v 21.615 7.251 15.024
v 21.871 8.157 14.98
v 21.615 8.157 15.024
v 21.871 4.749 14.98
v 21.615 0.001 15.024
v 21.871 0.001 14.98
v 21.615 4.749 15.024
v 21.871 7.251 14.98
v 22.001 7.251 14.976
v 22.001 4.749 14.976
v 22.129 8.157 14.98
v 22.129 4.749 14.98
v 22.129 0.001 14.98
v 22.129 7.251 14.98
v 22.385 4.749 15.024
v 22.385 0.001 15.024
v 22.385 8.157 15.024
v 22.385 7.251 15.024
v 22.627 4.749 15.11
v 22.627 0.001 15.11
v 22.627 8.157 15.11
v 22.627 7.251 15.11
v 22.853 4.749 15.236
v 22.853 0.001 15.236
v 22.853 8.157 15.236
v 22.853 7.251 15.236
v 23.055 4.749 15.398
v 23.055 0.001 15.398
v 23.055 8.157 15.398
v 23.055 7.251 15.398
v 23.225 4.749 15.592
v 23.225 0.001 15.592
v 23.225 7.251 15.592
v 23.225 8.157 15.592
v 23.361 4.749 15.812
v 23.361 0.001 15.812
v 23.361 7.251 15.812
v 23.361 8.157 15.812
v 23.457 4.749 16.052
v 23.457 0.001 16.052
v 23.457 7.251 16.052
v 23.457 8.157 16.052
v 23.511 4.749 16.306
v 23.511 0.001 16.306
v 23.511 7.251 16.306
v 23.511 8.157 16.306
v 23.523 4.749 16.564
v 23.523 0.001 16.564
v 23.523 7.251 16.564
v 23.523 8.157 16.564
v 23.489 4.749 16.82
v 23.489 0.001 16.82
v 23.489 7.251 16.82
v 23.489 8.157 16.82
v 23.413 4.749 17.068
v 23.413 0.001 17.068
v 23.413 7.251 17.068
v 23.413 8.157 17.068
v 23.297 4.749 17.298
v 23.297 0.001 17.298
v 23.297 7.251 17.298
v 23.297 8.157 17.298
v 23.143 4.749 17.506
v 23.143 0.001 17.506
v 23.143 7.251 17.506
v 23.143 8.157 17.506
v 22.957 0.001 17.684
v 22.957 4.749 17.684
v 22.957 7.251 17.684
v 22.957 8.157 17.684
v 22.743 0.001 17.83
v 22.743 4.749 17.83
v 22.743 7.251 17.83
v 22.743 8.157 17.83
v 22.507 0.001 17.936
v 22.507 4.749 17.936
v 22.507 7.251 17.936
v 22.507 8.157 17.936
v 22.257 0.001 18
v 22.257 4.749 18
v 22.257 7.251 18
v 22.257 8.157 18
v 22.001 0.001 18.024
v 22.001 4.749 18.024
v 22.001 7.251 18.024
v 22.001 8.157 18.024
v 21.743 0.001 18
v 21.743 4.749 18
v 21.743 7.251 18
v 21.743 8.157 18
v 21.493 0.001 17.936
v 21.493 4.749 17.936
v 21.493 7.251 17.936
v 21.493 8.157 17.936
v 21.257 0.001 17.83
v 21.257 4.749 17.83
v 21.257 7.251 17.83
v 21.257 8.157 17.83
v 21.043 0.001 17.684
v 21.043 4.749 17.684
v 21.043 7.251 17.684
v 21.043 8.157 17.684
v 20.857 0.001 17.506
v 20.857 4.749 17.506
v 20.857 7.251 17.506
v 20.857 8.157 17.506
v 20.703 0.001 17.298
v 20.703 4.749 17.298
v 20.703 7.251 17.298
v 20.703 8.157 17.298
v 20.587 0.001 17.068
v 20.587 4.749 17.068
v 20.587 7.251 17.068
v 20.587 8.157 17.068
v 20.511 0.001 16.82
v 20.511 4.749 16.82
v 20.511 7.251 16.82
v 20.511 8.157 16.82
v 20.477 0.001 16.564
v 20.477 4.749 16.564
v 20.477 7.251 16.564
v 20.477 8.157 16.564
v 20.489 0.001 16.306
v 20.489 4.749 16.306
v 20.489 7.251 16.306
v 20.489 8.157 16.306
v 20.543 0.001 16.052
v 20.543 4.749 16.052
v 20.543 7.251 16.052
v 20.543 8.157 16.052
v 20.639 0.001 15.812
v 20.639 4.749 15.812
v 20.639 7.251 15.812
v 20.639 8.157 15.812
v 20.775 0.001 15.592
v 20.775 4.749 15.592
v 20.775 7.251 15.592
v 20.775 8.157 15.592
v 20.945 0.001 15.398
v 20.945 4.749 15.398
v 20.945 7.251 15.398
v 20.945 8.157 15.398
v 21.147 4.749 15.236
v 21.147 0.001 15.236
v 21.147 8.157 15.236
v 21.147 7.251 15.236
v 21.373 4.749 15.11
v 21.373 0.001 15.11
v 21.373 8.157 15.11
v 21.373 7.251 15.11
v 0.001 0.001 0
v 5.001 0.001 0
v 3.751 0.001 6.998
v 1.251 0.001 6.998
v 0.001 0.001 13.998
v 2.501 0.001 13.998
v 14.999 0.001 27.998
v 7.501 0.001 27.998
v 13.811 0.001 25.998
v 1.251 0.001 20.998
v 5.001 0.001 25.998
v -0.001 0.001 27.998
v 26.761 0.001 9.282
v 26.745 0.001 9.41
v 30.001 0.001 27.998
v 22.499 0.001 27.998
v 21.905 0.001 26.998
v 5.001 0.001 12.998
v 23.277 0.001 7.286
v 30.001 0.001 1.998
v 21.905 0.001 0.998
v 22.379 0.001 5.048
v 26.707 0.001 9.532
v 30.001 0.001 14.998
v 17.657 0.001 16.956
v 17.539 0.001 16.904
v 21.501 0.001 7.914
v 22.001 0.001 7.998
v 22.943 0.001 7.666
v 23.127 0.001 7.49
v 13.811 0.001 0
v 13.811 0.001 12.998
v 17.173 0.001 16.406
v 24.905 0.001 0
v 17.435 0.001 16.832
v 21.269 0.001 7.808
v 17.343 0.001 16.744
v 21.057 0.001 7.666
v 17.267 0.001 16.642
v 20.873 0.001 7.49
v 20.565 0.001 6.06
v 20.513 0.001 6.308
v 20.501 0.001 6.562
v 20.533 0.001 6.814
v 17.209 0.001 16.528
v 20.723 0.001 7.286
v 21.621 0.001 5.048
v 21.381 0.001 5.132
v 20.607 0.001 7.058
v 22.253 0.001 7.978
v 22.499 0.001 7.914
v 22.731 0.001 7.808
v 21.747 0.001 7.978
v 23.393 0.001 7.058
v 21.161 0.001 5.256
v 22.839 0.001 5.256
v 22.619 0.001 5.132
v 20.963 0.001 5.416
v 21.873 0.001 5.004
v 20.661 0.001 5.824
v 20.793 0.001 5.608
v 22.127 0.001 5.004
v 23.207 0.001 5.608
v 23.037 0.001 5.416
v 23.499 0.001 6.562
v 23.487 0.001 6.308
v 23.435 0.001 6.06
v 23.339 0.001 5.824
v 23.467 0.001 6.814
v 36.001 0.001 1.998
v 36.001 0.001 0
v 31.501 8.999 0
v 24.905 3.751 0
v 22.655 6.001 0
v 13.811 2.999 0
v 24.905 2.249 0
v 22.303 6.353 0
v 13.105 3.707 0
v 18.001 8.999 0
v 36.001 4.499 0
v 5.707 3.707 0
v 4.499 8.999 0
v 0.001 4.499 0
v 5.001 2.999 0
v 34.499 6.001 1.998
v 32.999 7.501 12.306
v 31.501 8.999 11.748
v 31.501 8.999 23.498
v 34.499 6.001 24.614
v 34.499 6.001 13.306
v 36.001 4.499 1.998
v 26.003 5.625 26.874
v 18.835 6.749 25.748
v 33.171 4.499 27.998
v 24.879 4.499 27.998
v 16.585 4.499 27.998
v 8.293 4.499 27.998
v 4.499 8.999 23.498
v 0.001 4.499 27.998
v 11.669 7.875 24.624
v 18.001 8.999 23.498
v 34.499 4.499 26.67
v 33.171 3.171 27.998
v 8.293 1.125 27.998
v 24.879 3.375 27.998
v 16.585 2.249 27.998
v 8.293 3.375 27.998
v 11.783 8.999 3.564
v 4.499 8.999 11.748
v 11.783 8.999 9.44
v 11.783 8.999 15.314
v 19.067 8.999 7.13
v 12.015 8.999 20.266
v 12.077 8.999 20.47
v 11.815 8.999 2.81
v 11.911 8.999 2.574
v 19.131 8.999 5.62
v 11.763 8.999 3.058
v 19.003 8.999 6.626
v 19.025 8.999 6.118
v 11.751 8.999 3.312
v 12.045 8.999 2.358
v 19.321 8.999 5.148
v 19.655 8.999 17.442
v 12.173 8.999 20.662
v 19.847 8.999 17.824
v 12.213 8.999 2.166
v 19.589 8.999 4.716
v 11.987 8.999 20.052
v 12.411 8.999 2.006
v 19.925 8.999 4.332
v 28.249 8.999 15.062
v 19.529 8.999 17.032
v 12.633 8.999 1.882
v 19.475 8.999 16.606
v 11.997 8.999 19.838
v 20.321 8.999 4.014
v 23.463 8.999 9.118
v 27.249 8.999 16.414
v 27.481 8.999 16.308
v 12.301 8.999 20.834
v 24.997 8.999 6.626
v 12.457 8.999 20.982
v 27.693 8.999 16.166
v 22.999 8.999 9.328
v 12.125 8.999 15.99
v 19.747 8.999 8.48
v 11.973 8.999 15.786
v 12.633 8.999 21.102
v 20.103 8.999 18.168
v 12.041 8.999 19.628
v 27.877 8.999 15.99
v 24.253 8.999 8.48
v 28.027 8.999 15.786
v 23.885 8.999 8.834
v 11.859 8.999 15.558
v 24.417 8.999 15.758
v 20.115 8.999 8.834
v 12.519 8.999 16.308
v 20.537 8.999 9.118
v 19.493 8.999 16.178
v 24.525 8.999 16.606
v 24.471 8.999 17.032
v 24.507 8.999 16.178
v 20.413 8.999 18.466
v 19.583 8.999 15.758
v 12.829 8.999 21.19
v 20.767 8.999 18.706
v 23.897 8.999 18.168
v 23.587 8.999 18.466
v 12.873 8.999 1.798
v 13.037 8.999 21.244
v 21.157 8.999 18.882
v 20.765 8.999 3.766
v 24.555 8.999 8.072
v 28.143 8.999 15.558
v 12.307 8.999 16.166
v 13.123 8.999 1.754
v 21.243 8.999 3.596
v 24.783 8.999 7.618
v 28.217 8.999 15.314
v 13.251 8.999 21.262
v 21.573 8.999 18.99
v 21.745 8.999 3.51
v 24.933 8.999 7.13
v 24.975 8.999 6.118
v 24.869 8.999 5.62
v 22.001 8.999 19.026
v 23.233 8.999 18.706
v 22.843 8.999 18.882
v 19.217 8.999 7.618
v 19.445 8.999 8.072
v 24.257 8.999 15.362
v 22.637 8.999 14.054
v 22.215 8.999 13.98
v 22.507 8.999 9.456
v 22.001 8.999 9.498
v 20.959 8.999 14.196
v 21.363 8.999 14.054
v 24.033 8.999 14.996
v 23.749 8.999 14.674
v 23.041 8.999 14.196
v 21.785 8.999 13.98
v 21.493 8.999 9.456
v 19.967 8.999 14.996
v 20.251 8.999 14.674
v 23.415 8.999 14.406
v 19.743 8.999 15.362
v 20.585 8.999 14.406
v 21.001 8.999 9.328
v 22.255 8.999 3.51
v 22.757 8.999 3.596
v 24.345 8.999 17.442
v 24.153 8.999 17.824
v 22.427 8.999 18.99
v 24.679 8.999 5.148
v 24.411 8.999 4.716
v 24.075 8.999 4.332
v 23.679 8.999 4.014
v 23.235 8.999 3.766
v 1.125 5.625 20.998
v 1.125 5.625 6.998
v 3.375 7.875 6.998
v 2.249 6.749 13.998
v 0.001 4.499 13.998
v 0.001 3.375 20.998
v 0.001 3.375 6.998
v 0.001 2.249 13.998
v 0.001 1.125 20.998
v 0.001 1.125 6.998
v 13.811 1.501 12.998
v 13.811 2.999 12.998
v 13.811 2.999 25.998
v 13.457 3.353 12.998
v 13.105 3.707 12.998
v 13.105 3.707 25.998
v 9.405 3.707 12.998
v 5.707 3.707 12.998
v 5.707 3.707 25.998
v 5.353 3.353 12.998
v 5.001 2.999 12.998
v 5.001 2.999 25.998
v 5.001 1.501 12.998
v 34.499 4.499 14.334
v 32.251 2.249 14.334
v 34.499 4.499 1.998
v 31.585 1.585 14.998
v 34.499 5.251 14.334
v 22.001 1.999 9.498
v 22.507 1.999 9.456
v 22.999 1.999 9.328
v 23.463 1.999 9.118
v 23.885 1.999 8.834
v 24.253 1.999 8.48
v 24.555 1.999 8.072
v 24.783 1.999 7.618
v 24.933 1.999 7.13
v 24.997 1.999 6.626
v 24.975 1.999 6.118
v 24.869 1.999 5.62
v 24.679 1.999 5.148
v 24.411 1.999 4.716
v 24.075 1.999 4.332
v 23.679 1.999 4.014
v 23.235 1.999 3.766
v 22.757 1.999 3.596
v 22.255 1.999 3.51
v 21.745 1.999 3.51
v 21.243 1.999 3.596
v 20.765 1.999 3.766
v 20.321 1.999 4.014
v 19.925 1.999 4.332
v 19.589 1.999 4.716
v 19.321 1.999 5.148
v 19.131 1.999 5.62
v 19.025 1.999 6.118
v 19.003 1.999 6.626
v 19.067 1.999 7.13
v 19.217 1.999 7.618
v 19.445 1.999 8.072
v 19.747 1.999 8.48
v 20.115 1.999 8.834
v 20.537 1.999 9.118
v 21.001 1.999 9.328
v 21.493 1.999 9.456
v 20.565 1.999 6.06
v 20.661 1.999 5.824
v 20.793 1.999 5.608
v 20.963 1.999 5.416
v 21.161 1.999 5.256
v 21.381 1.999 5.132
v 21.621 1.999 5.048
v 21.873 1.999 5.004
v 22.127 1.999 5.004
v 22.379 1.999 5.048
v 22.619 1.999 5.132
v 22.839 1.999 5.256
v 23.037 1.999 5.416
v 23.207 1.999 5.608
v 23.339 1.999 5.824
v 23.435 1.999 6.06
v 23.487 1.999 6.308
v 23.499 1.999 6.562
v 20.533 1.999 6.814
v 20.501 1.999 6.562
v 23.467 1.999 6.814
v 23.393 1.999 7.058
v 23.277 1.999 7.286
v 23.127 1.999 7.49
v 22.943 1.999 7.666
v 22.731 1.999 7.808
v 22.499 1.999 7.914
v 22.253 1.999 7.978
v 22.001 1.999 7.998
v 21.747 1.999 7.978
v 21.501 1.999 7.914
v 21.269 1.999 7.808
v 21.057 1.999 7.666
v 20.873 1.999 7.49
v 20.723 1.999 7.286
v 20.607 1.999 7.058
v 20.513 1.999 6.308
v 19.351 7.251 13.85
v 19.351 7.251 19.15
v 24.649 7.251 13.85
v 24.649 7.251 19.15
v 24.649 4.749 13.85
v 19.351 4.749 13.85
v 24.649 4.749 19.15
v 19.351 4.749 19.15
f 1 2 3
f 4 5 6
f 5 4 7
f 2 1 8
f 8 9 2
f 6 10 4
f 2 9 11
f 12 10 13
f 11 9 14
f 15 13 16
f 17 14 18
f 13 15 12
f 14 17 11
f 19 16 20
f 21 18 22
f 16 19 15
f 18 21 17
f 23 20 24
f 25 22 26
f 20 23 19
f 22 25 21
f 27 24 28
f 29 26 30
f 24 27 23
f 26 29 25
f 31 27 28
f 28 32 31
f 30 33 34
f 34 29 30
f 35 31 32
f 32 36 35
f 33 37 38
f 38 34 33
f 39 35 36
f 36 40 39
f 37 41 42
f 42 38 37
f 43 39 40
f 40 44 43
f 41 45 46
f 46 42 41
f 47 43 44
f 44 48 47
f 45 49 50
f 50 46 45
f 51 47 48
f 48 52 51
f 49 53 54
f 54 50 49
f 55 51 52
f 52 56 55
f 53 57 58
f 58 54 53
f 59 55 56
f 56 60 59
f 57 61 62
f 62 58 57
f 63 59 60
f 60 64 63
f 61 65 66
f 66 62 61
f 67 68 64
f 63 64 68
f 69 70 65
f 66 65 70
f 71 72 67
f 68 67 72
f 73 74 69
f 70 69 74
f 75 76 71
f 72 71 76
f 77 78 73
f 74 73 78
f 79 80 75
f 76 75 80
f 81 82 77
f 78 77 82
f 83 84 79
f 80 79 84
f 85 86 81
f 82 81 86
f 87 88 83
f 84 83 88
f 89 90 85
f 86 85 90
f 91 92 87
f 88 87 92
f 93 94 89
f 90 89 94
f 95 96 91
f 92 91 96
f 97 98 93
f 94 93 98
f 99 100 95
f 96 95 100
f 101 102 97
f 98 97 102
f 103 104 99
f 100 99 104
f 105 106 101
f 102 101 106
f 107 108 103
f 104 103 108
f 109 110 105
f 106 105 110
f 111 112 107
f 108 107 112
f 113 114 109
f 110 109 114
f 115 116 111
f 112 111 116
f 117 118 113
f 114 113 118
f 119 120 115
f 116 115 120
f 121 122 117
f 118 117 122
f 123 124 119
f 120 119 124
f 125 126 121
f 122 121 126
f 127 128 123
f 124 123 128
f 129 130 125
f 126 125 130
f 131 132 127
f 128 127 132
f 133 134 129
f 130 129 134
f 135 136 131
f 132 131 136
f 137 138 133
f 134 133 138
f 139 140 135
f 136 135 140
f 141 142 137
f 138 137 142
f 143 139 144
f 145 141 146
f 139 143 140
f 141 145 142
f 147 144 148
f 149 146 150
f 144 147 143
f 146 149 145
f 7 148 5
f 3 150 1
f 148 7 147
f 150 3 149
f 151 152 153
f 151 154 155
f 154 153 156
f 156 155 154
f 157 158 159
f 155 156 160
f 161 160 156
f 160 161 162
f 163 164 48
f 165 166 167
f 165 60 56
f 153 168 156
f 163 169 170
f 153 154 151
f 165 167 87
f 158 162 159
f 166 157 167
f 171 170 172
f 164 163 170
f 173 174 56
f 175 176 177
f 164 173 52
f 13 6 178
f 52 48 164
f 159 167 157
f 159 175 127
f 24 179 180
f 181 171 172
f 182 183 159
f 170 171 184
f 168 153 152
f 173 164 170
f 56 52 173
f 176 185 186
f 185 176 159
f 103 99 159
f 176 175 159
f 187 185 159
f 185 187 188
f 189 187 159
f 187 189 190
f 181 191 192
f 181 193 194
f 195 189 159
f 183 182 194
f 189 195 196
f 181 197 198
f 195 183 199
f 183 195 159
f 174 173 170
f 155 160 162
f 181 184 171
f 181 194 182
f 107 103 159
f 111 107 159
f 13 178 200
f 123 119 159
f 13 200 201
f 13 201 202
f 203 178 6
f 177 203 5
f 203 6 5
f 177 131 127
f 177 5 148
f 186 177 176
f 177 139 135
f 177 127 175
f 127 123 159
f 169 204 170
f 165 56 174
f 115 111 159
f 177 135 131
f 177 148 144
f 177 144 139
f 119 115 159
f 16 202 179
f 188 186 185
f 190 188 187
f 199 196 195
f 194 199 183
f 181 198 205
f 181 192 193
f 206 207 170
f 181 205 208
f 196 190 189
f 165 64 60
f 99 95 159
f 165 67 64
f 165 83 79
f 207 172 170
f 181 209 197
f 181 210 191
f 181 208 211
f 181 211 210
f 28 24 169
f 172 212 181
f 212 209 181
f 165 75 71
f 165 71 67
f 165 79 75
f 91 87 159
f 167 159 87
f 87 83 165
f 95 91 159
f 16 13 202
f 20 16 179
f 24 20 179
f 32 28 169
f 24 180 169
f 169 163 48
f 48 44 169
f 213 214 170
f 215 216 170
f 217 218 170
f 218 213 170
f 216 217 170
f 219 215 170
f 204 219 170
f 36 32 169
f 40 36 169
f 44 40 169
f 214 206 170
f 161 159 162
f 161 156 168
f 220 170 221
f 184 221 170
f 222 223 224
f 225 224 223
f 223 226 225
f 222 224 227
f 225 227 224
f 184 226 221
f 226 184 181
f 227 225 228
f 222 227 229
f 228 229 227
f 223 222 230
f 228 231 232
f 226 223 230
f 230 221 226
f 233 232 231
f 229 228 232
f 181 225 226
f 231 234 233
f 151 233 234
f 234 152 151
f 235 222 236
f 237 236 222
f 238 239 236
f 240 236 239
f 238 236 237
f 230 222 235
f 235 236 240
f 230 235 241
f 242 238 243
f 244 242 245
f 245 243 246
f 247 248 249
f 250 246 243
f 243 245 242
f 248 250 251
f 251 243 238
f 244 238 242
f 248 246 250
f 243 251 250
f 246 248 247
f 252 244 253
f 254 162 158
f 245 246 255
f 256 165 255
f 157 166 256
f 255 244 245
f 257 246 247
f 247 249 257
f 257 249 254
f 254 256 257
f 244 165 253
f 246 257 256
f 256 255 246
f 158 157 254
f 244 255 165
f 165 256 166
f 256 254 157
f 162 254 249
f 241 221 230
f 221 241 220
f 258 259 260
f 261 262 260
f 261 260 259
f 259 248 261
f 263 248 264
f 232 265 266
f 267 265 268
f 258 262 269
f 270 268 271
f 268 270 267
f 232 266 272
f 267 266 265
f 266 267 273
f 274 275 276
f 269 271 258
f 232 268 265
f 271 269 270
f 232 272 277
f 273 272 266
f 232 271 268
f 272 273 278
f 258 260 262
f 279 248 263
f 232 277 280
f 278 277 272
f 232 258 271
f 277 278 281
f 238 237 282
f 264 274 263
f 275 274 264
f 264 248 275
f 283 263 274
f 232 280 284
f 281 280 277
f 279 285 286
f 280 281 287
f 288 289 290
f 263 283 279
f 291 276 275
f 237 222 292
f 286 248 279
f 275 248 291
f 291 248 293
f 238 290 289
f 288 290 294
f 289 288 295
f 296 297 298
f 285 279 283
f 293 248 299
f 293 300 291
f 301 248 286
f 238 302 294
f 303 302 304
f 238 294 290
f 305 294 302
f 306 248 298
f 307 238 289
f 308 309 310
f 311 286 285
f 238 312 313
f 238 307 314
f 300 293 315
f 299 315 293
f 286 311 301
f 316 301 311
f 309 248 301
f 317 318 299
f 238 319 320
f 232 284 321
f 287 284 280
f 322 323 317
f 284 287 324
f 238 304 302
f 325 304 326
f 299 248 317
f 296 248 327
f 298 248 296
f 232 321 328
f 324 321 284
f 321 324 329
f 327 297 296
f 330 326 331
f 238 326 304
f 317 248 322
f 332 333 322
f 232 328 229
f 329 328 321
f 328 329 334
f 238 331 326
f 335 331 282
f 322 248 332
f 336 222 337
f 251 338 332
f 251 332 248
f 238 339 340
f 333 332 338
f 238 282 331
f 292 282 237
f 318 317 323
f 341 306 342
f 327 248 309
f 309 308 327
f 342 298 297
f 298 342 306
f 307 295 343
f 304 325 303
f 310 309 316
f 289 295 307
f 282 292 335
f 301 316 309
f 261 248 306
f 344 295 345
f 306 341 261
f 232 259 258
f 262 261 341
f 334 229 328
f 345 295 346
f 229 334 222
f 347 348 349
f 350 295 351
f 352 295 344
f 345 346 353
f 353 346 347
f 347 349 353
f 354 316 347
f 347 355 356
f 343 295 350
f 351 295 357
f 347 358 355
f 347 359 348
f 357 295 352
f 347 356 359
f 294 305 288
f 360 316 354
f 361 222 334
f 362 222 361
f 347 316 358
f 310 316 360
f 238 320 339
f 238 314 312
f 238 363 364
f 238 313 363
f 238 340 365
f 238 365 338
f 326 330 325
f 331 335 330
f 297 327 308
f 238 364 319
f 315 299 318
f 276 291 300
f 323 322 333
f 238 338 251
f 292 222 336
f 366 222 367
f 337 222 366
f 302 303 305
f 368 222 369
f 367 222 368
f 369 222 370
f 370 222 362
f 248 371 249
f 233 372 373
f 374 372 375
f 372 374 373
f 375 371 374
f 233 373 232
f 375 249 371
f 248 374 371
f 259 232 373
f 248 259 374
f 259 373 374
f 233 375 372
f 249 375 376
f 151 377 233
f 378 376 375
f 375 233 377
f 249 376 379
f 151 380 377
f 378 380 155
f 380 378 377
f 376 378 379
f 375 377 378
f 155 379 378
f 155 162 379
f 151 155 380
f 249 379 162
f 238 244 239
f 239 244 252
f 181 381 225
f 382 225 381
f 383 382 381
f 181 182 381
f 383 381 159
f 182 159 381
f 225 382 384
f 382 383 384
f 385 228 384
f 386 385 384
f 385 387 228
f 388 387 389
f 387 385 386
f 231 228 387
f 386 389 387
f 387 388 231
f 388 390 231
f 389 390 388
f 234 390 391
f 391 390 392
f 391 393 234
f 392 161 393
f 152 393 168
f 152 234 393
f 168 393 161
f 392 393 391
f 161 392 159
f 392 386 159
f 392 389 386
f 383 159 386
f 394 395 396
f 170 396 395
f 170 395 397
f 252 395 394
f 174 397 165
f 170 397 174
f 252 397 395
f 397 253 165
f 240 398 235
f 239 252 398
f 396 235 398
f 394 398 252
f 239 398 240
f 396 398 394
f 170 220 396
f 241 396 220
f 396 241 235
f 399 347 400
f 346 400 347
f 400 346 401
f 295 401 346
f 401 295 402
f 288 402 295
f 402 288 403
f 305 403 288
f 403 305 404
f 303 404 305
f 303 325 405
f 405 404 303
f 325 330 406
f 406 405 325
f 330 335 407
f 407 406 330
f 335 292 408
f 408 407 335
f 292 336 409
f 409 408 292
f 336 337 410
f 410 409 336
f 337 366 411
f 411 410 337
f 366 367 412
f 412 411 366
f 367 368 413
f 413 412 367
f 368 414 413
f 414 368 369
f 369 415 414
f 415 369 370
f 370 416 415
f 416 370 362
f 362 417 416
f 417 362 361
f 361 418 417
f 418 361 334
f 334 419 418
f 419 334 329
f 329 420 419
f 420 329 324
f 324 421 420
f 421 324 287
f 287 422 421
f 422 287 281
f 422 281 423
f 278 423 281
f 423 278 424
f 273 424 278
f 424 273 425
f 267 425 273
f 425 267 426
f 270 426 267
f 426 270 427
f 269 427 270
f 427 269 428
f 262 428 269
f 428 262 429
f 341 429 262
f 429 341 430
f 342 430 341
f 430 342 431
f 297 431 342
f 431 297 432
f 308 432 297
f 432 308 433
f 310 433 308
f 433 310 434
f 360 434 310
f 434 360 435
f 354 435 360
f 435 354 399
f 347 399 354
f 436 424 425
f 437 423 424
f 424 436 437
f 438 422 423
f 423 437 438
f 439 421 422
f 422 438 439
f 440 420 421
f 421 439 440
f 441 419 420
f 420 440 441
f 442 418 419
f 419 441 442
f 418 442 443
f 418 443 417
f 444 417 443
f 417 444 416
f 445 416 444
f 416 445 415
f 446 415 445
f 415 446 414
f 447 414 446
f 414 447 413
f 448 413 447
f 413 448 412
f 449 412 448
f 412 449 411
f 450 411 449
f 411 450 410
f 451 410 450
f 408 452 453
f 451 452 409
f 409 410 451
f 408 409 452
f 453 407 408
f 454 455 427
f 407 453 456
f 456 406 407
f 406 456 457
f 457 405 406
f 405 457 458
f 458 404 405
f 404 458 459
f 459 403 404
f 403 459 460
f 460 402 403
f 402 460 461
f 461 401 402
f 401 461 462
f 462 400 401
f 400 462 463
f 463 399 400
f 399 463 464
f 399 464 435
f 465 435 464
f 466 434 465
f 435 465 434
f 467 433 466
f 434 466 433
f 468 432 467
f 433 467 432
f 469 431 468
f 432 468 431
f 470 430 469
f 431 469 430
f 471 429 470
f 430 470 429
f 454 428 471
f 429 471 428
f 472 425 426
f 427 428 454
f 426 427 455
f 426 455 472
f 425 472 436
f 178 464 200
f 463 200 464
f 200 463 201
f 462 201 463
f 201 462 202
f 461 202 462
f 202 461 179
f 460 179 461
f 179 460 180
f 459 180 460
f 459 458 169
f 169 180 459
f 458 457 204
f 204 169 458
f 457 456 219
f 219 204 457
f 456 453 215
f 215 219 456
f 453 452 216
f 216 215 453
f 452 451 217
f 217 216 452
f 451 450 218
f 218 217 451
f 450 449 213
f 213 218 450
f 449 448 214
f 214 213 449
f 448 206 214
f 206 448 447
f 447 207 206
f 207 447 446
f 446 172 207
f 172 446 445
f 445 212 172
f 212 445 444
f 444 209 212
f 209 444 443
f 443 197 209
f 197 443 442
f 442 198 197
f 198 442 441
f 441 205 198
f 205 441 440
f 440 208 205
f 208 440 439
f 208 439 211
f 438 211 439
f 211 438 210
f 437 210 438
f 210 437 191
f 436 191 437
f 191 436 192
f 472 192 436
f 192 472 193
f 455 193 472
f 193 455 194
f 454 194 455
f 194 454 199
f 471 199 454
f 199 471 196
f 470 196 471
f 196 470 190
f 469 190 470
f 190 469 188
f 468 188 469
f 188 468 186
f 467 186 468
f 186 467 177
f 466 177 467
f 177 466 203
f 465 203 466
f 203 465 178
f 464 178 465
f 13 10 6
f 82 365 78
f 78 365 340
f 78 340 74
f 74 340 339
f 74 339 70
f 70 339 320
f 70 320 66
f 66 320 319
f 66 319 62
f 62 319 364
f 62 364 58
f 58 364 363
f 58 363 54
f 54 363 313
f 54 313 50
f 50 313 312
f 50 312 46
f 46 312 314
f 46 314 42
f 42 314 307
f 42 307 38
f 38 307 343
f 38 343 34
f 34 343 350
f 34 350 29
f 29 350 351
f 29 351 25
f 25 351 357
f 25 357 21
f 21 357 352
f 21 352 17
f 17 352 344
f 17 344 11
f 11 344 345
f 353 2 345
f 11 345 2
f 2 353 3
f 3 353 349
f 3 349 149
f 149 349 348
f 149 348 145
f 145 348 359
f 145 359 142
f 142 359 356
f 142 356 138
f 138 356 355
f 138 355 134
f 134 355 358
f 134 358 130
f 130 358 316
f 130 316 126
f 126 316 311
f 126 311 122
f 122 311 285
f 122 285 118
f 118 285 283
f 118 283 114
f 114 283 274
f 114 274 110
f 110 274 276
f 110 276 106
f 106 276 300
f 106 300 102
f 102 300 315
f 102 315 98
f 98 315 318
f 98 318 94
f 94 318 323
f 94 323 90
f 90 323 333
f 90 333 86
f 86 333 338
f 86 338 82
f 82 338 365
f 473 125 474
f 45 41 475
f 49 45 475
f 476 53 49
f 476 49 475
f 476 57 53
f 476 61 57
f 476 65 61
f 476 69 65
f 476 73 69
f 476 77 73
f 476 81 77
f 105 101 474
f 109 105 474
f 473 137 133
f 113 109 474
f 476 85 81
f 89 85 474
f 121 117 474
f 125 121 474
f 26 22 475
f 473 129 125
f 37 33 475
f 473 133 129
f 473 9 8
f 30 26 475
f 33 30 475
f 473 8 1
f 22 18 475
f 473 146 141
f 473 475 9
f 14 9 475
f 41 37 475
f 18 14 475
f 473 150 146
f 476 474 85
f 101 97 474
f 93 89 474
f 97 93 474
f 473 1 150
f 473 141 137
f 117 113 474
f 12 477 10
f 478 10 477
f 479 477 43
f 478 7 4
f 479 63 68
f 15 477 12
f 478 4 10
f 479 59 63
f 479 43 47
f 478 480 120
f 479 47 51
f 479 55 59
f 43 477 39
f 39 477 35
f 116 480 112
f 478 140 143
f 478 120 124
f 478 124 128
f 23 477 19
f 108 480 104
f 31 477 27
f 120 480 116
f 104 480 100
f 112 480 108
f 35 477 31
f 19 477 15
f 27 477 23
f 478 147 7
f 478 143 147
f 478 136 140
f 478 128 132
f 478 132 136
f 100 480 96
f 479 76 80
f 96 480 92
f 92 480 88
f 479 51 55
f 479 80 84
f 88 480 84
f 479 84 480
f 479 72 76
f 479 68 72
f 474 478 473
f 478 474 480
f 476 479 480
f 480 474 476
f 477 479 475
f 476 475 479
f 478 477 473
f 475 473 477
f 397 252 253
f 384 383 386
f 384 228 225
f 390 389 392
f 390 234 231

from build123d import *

# Parameters (mm, degrees)
SKETCH1_W                                         = 36
SKETCH1_H                                         = 9
BOSS_EXTRUDE1_DEPTH                               = 28
CUT_EXTRUDE1_DEPTH                                = 28
CUT_EXTRUDE2_DEPTH                                = 36
SKETCH5_W                                         = 11.440376565
SKETCH5_H                                         = 15.618965423
CUT_EXTRUDE4_DEPTH                                = 2
CUT_EXTRUDE5_DEPTH                                = 2
CUT_EXTRUDE5_DEPTH_BACK                           = 2
CUT_EXTRUDE6_DEPTH                                = 26
CUT_EXTRUDE7_DEPTH                                = 26
SKETCH10_R                                        = 3
CUT_EXTRUDE8_DEPTH                                = 7
SKETCH11_R                                        = 1.5
CUT_EXTRUDE9_DEPTH                                = 2
SKETCH12_R                                        = 1.5
CUT_EXTRUDE10_DEPTH                               = 9
CSK_FOR_3_FLAT_HEAD_MACHINE_SCREW_100_D           = 3.048
CSK_FOR_3_FLAT_HEAD_MACHINE_SCREW_100_DEPTH       = 9
CSK_FOR_3_FLAT_HEAD_MACHINE_SCREW_100_CSINK_D     = 5.0546
CSK_FOR_3_FLAT_HEAD_MACHINE_SCREW_100_CSINK_ANGLE = 100
SKETCH15_W                                        = 5.3
SKETCH15_H                                        = 5.3
CUT_EXTRUDE11_DEPTH                               = 2.5


with BuildPart() as part:
    # Sketch1 → Boss-Extrude1 (new body)
    with BuildSketch(Plane.XY):
        with Locations((18, 4.5)):
            Rectangle(SKETCH1_W, SKETCH1_H)
    extrude(amount=BOSS_EXTRUDE1_DEPTH)

    # Sketch2 → Cut-Extrude1 (cut)
    with BuildSketch(Plane.XY):
        Polygon((0, 4.5), (4.5, 9), (0, 9), align=None)
        Polygon((36, 4.5), (31.5, 9), (36, 9), align=None)
    extrude(amount=CUT_EXTRUDE1_DEPTH, mode=Mode.SUBTRACT)

    # Sketch3 → Cut-Extrude2 (cut)
    with BuildSketch(Plane(origin=(0, 0, 0), x_dir=(0, 0, -1), z_dir=(1, 0, 0))):
        Polygon((-28, 4.5), (-23.5, 9), (-28, 9), align=None)
    extrude(amount=CUT_EXTRUDE2_DEPTH, mode=Mode.SUBTRACT)

    # Sketch5 → Cut-Extrude4 (cut)
    with BuildSketch(Plane(origin=(32, 0, 32), x_dir=(0, 1, 0), z_dir=(0.707106781, 0, 0.707106781))):
        with Locations((5.720188283, -5.935696583)):
            Rectangle(SKETCH5_W, SKETCH5_H)
    extrude(amount=-CUT_EXTRUDE4_DEPTH, mode=Mode.SUBTRACT)

    # Sketch6 → Cut-Extrude5 (cut, two sides)
    with BuildSketch(Plane(origin=(4, 0, -4), x_dir=(0.577350269, -0.577350269, 0.577350269), z_dir=(-0.707106781, 0, 0.707106781))) as cut_extrude5_sk:
        Polygon((26.558112383, 29.802125204), (32.719347855, 28.647424665), (30.19862658, 32.212262879), align=None)
    extrude(amount=CUT_EXTRUDE5_DEPTH, mode=Mode.SUBTRACT)
    extrude(cut_extrude5_sk.sketch, amount=-CUT_EXTRUDE5_DEPTH_BACK, mode=Mode.SUBTRACT)

    # Sketch7 → Cut-Extrude6 (cut)
    with BuildSketch(Plane.XY):
        Polygon((5, 0), (5, 3), (5.707106781, 3.707106781), (13.104524105, 3.707106781), (13.811630886, 3), (13.811630886, 0), align=None)
    extrude(amount=CUT_EXTRUDE6_DEPTH, mode=Mode.SUBTRACT)

    # Sketch8 → Cut-Extrude7 (cut)
    with BuildSketch(Plane.XY.offset(28)):
        Polygon((36, 0), (30, 0), (34.5, 4.5), (34.5, 6), (36, 6), align=None)
    extrude(amount=-CUT_EXTRUDE7_DEPTH, mode=Mode.SUBTRACT)

    # Sketch10 → Cut-Extrude8 (cut)
    with BuildSketch(Plane(origin=(0, 9, 0), x_dir=(1, 0, 0), z_dir=(0, 1, 0))):
        with Locations((22, -6.5)):
            Circle(SKETCH10_R)
    extrude(amount=-CUT_EXTRUDE8_DEPTH, mode=Mode.SUBTRACT)

    # Sketch11 → Cut-Extrude9 (cut)
    with BuildSketch(Plane(origin=(0, 2, 0), x_dir=(1, 0, 0), z_dir=(0, 1, 0))):
        with Locations((22, -6.5)):
            Circle(SKETCH11_R)
    extrude(amount=-CUT_EXTRUDE9_DEPTH, mode=Mode.SUBTRACT)

    # Sketch12 → Cut-Extrude10 (cut)
    with BuildSketch(Plane(origin=(0, 0, 0), x_dir=(1, 0, 0), z_dir=(0, 1, 0))):
        with Locations((22, -16.5)):
            Circle(SKETCH12_R)
    extrude(amount=CUT_EXTRUDE10_DEPTH, mode=Mode.SUBTRACT)

    # CSK for #3 Flat Head Machine Screw (100)1
    with Locations(Plane(origin=(22, 9, 16.5), x_dir=(0, 0, 1), z_dir=(0, 1, 0))):
        with Locations((0, 0)):
            CounterSinkHole(CSK_FOR_3_FLAT_HEAD_MACHINE_SCREW_100_D / 2, CSK_FOR_3_FLAT_HEAD_MACHINE_SCREW_100_CSINK_D / 2, depth=CSK_FOR_3_FLAT_HEAD_MACHINE_SCREW_100_DEPTH, counter_sink_angle=CSK_FOR_3_FLAT_HEAD_MACHINE_SCREW_100_CSINK_ANGLE)

    # Sketch15 → Cut-Extrude11 (cut)
    with BuildSketch(Plane(origin=(0, 4.75, 0), x_dir=(1, 0, 0), z_dir=(0, 1, 0))):
        with Locations((22, -16.5)):
            Rectangle(SKETCH15_W, SKETCH15_H)
    extrude(amount=CUT_EXTRUDE11_DEPTH, mode=Mode.SUBTRACT)


solid = part.part
